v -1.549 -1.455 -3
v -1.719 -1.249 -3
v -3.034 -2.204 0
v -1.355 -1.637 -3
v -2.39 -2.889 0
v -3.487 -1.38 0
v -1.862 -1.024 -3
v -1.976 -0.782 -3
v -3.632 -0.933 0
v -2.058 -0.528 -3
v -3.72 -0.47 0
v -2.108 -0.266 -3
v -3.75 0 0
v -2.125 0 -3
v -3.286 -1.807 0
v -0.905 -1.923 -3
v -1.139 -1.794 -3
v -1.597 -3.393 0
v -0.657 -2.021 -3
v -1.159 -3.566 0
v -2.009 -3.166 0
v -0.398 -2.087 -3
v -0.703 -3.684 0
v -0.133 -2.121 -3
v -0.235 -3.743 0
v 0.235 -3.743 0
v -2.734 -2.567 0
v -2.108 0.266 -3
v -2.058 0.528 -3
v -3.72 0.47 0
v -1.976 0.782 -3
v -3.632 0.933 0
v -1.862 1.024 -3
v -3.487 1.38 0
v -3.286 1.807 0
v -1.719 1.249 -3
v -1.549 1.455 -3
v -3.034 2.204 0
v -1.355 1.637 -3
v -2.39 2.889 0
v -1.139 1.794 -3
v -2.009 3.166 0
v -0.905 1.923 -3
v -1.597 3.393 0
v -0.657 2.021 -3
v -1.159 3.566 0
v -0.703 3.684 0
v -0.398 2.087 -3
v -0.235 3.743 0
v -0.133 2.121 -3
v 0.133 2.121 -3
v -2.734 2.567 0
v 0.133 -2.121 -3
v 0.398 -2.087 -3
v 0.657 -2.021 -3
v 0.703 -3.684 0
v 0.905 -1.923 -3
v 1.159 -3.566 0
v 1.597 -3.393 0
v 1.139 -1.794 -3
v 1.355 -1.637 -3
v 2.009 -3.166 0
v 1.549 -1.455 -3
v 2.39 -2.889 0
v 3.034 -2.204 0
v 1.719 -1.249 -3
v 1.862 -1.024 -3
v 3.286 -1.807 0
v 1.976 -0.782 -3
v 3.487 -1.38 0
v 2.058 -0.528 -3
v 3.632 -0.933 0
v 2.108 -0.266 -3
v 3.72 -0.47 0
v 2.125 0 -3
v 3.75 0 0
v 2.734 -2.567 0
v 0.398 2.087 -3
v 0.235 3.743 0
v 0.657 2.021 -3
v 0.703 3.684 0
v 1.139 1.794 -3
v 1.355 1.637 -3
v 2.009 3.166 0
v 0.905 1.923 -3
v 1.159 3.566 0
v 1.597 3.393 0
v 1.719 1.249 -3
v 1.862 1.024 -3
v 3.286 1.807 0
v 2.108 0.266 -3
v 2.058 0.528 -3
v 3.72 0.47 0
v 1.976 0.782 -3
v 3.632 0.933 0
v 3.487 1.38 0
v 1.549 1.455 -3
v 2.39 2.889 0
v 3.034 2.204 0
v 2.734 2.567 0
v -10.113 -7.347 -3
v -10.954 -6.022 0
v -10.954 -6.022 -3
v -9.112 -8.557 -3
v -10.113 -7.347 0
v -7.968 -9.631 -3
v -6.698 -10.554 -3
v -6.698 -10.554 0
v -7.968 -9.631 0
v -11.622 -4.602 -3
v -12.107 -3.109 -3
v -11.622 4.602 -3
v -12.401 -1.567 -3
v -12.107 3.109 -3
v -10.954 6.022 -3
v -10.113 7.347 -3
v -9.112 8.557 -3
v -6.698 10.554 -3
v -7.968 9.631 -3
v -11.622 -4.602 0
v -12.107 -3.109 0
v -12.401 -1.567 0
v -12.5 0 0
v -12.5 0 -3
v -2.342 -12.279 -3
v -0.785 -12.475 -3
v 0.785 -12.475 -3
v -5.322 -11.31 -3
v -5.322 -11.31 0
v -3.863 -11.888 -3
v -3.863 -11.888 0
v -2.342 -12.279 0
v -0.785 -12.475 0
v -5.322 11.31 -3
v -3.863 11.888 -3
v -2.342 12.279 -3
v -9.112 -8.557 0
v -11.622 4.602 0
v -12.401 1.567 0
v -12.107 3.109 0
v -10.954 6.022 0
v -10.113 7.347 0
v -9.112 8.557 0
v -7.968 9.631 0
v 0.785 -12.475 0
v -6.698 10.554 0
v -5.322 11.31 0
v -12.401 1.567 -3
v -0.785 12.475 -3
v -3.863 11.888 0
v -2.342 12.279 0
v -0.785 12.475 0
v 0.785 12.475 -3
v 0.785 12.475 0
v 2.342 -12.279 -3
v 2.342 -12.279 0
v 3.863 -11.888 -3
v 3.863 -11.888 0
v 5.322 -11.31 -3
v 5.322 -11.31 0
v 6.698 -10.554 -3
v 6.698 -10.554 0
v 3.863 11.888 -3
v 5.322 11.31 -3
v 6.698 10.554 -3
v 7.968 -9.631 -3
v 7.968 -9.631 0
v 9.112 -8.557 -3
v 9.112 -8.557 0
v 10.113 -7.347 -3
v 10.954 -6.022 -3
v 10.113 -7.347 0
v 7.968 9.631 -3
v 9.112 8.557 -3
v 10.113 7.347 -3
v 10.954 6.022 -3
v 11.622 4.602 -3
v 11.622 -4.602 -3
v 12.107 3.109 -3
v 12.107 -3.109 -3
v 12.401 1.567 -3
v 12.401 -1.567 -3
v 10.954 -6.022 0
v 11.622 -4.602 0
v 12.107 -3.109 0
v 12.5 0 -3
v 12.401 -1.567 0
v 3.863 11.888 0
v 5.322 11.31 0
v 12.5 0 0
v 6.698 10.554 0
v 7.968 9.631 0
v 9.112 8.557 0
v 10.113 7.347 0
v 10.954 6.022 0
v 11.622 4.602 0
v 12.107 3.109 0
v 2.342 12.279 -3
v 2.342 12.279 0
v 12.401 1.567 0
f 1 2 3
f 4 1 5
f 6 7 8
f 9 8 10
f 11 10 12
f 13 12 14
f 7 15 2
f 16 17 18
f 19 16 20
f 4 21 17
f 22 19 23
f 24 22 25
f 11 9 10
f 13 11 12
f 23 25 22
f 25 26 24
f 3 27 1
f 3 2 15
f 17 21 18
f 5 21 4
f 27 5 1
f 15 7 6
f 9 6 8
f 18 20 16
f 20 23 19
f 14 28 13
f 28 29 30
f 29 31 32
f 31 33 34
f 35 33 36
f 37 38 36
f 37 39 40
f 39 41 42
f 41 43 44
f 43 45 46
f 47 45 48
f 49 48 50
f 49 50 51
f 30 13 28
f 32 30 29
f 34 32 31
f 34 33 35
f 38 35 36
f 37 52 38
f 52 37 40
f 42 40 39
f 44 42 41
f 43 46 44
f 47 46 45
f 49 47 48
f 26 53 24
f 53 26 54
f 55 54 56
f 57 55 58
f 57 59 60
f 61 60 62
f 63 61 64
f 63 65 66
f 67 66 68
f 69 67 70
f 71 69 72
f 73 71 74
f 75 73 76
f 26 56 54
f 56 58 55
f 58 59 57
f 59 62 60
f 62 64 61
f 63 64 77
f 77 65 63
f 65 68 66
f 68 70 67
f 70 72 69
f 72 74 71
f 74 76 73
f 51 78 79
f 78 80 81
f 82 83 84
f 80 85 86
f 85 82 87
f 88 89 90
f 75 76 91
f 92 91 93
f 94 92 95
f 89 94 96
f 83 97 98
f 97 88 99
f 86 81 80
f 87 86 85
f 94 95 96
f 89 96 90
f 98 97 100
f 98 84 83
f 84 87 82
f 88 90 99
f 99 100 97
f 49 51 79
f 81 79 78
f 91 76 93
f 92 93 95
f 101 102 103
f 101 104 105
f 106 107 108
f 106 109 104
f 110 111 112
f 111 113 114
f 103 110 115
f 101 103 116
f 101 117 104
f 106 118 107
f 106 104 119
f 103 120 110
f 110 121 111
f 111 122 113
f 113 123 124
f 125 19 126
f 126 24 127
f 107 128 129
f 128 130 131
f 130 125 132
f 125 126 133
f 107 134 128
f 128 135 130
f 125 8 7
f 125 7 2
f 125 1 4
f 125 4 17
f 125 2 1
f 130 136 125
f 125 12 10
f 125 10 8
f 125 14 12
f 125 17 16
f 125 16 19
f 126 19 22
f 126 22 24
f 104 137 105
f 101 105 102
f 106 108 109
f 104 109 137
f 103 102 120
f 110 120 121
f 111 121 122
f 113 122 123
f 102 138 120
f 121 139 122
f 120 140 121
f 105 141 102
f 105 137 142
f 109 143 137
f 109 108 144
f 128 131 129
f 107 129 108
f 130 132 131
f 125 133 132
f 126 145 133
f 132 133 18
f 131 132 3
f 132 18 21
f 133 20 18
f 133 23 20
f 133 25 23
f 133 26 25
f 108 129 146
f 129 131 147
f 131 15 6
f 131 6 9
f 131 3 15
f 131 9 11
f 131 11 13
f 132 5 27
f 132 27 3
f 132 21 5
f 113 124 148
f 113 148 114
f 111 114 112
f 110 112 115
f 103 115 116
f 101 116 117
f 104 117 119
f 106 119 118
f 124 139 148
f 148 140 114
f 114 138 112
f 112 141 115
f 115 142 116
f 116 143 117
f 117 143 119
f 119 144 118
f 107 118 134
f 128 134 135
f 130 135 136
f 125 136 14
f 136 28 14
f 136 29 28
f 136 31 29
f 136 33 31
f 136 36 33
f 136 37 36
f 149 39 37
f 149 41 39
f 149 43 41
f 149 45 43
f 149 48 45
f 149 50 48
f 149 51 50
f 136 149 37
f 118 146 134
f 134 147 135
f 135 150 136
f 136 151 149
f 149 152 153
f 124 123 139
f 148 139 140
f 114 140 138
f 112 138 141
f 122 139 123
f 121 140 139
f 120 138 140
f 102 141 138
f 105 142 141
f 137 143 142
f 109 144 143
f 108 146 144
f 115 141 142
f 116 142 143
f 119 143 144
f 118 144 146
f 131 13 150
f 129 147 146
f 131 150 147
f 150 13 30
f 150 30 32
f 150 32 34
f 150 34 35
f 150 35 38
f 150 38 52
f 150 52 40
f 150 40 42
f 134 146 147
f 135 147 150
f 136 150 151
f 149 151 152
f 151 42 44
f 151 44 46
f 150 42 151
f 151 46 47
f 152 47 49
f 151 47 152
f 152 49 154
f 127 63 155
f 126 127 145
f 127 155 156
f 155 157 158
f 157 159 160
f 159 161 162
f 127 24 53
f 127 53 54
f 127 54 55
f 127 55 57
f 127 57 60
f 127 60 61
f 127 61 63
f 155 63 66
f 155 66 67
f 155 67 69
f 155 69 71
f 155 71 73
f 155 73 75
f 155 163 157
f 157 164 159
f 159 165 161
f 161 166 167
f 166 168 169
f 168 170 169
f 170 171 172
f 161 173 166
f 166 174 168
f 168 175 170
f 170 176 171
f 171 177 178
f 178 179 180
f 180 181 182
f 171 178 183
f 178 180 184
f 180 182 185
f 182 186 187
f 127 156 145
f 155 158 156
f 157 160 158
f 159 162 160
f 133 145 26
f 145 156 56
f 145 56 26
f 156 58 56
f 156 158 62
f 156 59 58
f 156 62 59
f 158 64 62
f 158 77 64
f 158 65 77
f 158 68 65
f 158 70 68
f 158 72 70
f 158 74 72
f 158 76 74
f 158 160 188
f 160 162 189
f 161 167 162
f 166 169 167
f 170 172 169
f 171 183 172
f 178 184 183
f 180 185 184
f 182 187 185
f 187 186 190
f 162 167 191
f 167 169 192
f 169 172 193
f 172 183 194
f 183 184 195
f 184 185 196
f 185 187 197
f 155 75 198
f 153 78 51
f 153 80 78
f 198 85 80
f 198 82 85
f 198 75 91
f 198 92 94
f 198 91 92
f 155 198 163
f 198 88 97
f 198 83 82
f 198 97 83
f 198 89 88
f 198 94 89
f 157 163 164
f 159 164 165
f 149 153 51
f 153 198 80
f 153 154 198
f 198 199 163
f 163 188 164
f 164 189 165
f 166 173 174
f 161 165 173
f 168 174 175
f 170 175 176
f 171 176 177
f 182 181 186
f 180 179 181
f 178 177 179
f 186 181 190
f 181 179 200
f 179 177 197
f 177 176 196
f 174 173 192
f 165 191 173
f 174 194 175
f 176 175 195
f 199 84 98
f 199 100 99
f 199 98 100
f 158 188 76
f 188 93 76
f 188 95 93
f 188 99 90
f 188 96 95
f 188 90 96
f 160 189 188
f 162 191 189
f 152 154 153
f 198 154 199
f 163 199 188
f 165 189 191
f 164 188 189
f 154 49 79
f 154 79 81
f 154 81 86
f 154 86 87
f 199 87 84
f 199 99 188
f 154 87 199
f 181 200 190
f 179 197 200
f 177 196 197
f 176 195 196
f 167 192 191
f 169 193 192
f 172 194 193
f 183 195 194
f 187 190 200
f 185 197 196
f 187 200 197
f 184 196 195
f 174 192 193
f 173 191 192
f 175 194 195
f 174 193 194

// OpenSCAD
$fn = 50;


difference() {
	union() {
		translate(v = [0, 0, -3.0000000000]) {
			cylinder(h = 3, r = 12.5000000000);
		}
	}
	union() {
		translate(v = [0, 0, 0]) {
			rotate(a = [0, 0, 0]) {
				difference() {
					union() {
						translate(v = [0, 0, -6.0000000000]) {
							cylinder(h = 6, r = 2.0000000000);
						}
						translate(v = [0, 0, -3]) {
							cylinder(h = 3, r1 = 2.1250000000, r2 = 3.7500000000);
						}
						translate(v = [0, 0, -6.0000000000]) {
							cylinder(h = 6, r = 2.1250000000);
						}
						translate(v = [0, 0, -6.0000000000]) {
							cylinder(h = 6, r = 2.0000000000);
						}
					}
					union();
				}
			}
		}
	}
}
